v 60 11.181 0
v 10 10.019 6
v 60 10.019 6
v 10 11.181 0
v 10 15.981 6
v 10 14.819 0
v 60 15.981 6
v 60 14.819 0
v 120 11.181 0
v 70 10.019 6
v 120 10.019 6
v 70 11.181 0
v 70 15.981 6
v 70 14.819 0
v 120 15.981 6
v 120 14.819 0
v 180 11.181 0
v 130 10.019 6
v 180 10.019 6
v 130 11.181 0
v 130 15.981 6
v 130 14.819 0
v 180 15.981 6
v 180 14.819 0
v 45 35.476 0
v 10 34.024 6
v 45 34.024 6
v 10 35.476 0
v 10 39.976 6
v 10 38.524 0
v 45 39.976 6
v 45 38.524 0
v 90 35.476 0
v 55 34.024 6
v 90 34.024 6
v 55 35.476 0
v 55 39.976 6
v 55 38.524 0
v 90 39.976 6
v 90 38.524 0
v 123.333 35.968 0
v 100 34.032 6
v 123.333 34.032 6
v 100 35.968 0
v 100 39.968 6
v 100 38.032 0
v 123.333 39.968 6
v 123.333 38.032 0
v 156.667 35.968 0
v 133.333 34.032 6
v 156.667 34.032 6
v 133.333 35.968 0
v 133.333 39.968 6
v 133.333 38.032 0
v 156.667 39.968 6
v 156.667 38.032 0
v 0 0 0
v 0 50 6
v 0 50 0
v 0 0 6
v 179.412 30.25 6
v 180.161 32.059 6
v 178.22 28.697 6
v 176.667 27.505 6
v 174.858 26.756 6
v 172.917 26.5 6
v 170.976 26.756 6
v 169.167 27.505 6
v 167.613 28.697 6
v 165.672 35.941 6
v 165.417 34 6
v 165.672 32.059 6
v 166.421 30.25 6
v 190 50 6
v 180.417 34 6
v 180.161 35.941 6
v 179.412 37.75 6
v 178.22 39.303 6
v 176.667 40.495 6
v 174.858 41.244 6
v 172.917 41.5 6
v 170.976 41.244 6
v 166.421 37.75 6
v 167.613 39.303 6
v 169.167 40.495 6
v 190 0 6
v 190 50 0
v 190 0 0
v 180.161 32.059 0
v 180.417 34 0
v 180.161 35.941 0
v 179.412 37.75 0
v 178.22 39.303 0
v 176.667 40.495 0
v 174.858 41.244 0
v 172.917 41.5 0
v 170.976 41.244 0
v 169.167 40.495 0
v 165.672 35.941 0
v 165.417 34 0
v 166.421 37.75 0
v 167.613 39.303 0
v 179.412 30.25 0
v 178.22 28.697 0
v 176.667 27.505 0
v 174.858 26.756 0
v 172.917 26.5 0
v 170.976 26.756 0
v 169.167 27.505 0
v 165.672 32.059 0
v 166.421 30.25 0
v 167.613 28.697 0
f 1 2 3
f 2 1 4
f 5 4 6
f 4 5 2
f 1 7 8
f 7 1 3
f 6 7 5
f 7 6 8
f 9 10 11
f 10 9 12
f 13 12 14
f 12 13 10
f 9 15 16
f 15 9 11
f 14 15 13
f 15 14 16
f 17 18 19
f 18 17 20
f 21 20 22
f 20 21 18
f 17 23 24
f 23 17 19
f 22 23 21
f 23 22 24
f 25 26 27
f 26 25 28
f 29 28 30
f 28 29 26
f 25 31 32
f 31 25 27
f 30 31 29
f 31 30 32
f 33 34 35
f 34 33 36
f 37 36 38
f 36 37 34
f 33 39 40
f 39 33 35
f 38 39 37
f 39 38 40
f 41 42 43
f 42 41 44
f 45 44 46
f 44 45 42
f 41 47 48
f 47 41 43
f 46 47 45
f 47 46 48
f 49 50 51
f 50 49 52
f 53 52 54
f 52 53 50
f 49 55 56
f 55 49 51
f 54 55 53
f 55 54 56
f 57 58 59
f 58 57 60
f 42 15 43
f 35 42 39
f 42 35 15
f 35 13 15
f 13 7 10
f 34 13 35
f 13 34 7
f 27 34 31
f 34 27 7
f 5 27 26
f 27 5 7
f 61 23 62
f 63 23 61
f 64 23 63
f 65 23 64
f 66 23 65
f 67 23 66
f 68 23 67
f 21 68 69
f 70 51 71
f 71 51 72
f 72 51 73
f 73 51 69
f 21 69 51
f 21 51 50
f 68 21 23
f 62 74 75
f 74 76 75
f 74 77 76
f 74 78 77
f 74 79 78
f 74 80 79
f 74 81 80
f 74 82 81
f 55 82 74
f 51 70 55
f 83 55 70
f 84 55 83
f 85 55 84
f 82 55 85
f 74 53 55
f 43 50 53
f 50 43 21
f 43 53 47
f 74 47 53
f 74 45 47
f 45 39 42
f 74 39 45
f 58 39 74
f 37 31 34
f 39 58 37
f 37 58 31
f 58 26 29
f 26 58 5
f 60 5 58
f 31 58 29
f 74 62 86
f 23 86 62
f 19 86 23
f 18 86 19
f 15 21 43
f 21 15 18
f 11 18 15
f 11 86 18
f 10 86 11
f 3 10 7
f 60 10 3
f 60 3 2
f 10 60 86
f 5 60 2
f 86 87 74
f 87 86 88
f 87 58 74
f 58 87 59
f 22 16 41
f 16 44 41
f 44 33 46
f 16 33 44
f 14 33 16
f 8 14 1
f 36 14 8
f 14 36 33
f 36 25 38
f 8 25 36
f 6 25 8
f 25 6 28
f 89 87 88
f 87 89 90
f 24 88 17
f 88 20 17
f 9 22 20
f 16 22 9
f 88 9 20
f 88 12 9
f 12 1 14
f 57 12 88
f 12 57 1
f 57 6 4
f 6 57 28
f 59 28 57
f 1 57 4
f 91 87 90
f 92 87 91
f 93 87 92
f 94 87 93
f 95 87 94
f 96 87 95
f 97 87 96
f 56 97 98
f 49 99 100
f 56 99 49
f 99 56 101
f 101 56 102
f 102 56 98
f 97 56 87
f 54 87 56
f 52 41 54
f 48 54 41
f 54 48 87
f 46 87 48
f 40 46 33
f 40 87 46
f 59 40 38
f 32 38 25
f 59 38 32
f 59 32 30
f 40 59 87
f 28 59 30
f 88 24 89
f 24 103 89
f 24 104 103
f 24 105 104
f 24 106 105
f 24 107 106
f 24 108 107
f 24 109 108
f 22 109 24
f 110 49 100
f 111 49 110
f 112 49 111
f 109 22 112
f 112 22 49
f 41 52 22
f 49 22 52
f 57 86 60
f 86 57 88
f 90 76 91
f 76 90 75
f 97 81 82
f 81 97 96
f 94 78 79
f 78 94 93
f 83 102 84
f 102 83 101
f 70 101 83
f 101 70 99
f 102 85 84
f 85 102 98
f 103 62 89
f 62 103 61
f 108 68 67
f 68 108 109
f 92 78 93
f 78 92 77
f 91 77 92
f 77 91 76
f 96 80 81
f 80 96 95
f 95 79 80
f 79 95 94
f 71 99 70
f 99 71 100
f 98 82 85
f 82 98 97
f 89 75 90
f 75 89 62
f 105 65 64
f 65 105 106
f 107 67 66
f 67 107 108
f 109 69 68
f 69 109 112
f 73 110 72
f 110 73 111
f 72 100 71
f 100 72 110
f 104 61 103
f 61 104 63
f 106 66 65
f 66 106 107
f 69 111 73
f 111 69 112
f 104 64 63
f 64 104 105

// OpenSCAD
padding = 10;
length = 190;
width = 50;
height = 6;
largeKnifeLength = (length - 4*padding)/3;
mediumKnifeLength = (length - 5*padding)/4;
smallKnifeLength = (length - 5*padding)/6;
nbMediumKnives = 2;
nbSmallKnives = 2;
sharpnerPocketRadius = 7.5;
knifeWidth = 6;

module knifeSlit(l, w, h, offset){
        slitPoints = [
          [  0,  offset,  0 ],  //0
          [ l,  offset,  0 ],  //1
          [ l,  w-offset,  0 ],  //2
          [  0,  w-offset,  0 ],  //3
          [  0,  0,  h ],  //4
          [ l,  0,  h ],  //5
          [ l,  w,  h ],  //6
          [  0,  w,  h ]]; //7
          
        slitFaces = [
          [0,1,2,3],  // bottom
          [4,5,1,0],  // front
          [7,6,5,4],  // top
          [5,6,2,1],  // right
          [6,7,3,2],  // back
          [7,4,0,3]]; // left
          
        polyhedron( slitPoints, slitFaces );
    }

difference() {
    cube([length,width,height]);
    for(i=[0:2]) {
        translate([(i+1)*padding+i*largeKnifeLength, padding, -0.1]) {
            knifeSlit(largeKnifeLength, knifeWidth, height+0.2, 1.2);
        }
    }
    for(i=[0:nbMediumKnives-1]) {
        translate([(i+1)*padding+i*mediumKnifeLength, width-padding-knifeWidth, -0.1]) {
            knifeSlit(mediumKnifeLength, knifeWidth, height+0.2, 1.5);
        }
    }
    
    for(i=[0:nbSmallKnives-1]) {
        translate([(i+1+nbMediumKnives)*padding+ nbMediumKnives*mediumKnifeLength + i*smallKnifeLength, width-padding-knifeWidth, -0.1]) {
            knifeSlit(smallKnifeLength, knifeWidth, height+0.2, 2);
        }
    }
    
    translate([(2+nbMediumKnives+nbSmallKnives)*padding+ nbMediumKnives*mediumKnifeLength + nbSmallKnives*smallKnifeLength - sharpnerPocketRadius/2, width-padding-knifeWidth, -0.1]) {
            cylinder(height+0.2, sharpnerPocketRadius, sharpnerPocketRadius);
        }
    
    //delete for full print
    //translate([2*padding + largeKnifeLength, -1, -1]) {
        //cube ([200, 200, 12]);
      //  }
}
    
    
